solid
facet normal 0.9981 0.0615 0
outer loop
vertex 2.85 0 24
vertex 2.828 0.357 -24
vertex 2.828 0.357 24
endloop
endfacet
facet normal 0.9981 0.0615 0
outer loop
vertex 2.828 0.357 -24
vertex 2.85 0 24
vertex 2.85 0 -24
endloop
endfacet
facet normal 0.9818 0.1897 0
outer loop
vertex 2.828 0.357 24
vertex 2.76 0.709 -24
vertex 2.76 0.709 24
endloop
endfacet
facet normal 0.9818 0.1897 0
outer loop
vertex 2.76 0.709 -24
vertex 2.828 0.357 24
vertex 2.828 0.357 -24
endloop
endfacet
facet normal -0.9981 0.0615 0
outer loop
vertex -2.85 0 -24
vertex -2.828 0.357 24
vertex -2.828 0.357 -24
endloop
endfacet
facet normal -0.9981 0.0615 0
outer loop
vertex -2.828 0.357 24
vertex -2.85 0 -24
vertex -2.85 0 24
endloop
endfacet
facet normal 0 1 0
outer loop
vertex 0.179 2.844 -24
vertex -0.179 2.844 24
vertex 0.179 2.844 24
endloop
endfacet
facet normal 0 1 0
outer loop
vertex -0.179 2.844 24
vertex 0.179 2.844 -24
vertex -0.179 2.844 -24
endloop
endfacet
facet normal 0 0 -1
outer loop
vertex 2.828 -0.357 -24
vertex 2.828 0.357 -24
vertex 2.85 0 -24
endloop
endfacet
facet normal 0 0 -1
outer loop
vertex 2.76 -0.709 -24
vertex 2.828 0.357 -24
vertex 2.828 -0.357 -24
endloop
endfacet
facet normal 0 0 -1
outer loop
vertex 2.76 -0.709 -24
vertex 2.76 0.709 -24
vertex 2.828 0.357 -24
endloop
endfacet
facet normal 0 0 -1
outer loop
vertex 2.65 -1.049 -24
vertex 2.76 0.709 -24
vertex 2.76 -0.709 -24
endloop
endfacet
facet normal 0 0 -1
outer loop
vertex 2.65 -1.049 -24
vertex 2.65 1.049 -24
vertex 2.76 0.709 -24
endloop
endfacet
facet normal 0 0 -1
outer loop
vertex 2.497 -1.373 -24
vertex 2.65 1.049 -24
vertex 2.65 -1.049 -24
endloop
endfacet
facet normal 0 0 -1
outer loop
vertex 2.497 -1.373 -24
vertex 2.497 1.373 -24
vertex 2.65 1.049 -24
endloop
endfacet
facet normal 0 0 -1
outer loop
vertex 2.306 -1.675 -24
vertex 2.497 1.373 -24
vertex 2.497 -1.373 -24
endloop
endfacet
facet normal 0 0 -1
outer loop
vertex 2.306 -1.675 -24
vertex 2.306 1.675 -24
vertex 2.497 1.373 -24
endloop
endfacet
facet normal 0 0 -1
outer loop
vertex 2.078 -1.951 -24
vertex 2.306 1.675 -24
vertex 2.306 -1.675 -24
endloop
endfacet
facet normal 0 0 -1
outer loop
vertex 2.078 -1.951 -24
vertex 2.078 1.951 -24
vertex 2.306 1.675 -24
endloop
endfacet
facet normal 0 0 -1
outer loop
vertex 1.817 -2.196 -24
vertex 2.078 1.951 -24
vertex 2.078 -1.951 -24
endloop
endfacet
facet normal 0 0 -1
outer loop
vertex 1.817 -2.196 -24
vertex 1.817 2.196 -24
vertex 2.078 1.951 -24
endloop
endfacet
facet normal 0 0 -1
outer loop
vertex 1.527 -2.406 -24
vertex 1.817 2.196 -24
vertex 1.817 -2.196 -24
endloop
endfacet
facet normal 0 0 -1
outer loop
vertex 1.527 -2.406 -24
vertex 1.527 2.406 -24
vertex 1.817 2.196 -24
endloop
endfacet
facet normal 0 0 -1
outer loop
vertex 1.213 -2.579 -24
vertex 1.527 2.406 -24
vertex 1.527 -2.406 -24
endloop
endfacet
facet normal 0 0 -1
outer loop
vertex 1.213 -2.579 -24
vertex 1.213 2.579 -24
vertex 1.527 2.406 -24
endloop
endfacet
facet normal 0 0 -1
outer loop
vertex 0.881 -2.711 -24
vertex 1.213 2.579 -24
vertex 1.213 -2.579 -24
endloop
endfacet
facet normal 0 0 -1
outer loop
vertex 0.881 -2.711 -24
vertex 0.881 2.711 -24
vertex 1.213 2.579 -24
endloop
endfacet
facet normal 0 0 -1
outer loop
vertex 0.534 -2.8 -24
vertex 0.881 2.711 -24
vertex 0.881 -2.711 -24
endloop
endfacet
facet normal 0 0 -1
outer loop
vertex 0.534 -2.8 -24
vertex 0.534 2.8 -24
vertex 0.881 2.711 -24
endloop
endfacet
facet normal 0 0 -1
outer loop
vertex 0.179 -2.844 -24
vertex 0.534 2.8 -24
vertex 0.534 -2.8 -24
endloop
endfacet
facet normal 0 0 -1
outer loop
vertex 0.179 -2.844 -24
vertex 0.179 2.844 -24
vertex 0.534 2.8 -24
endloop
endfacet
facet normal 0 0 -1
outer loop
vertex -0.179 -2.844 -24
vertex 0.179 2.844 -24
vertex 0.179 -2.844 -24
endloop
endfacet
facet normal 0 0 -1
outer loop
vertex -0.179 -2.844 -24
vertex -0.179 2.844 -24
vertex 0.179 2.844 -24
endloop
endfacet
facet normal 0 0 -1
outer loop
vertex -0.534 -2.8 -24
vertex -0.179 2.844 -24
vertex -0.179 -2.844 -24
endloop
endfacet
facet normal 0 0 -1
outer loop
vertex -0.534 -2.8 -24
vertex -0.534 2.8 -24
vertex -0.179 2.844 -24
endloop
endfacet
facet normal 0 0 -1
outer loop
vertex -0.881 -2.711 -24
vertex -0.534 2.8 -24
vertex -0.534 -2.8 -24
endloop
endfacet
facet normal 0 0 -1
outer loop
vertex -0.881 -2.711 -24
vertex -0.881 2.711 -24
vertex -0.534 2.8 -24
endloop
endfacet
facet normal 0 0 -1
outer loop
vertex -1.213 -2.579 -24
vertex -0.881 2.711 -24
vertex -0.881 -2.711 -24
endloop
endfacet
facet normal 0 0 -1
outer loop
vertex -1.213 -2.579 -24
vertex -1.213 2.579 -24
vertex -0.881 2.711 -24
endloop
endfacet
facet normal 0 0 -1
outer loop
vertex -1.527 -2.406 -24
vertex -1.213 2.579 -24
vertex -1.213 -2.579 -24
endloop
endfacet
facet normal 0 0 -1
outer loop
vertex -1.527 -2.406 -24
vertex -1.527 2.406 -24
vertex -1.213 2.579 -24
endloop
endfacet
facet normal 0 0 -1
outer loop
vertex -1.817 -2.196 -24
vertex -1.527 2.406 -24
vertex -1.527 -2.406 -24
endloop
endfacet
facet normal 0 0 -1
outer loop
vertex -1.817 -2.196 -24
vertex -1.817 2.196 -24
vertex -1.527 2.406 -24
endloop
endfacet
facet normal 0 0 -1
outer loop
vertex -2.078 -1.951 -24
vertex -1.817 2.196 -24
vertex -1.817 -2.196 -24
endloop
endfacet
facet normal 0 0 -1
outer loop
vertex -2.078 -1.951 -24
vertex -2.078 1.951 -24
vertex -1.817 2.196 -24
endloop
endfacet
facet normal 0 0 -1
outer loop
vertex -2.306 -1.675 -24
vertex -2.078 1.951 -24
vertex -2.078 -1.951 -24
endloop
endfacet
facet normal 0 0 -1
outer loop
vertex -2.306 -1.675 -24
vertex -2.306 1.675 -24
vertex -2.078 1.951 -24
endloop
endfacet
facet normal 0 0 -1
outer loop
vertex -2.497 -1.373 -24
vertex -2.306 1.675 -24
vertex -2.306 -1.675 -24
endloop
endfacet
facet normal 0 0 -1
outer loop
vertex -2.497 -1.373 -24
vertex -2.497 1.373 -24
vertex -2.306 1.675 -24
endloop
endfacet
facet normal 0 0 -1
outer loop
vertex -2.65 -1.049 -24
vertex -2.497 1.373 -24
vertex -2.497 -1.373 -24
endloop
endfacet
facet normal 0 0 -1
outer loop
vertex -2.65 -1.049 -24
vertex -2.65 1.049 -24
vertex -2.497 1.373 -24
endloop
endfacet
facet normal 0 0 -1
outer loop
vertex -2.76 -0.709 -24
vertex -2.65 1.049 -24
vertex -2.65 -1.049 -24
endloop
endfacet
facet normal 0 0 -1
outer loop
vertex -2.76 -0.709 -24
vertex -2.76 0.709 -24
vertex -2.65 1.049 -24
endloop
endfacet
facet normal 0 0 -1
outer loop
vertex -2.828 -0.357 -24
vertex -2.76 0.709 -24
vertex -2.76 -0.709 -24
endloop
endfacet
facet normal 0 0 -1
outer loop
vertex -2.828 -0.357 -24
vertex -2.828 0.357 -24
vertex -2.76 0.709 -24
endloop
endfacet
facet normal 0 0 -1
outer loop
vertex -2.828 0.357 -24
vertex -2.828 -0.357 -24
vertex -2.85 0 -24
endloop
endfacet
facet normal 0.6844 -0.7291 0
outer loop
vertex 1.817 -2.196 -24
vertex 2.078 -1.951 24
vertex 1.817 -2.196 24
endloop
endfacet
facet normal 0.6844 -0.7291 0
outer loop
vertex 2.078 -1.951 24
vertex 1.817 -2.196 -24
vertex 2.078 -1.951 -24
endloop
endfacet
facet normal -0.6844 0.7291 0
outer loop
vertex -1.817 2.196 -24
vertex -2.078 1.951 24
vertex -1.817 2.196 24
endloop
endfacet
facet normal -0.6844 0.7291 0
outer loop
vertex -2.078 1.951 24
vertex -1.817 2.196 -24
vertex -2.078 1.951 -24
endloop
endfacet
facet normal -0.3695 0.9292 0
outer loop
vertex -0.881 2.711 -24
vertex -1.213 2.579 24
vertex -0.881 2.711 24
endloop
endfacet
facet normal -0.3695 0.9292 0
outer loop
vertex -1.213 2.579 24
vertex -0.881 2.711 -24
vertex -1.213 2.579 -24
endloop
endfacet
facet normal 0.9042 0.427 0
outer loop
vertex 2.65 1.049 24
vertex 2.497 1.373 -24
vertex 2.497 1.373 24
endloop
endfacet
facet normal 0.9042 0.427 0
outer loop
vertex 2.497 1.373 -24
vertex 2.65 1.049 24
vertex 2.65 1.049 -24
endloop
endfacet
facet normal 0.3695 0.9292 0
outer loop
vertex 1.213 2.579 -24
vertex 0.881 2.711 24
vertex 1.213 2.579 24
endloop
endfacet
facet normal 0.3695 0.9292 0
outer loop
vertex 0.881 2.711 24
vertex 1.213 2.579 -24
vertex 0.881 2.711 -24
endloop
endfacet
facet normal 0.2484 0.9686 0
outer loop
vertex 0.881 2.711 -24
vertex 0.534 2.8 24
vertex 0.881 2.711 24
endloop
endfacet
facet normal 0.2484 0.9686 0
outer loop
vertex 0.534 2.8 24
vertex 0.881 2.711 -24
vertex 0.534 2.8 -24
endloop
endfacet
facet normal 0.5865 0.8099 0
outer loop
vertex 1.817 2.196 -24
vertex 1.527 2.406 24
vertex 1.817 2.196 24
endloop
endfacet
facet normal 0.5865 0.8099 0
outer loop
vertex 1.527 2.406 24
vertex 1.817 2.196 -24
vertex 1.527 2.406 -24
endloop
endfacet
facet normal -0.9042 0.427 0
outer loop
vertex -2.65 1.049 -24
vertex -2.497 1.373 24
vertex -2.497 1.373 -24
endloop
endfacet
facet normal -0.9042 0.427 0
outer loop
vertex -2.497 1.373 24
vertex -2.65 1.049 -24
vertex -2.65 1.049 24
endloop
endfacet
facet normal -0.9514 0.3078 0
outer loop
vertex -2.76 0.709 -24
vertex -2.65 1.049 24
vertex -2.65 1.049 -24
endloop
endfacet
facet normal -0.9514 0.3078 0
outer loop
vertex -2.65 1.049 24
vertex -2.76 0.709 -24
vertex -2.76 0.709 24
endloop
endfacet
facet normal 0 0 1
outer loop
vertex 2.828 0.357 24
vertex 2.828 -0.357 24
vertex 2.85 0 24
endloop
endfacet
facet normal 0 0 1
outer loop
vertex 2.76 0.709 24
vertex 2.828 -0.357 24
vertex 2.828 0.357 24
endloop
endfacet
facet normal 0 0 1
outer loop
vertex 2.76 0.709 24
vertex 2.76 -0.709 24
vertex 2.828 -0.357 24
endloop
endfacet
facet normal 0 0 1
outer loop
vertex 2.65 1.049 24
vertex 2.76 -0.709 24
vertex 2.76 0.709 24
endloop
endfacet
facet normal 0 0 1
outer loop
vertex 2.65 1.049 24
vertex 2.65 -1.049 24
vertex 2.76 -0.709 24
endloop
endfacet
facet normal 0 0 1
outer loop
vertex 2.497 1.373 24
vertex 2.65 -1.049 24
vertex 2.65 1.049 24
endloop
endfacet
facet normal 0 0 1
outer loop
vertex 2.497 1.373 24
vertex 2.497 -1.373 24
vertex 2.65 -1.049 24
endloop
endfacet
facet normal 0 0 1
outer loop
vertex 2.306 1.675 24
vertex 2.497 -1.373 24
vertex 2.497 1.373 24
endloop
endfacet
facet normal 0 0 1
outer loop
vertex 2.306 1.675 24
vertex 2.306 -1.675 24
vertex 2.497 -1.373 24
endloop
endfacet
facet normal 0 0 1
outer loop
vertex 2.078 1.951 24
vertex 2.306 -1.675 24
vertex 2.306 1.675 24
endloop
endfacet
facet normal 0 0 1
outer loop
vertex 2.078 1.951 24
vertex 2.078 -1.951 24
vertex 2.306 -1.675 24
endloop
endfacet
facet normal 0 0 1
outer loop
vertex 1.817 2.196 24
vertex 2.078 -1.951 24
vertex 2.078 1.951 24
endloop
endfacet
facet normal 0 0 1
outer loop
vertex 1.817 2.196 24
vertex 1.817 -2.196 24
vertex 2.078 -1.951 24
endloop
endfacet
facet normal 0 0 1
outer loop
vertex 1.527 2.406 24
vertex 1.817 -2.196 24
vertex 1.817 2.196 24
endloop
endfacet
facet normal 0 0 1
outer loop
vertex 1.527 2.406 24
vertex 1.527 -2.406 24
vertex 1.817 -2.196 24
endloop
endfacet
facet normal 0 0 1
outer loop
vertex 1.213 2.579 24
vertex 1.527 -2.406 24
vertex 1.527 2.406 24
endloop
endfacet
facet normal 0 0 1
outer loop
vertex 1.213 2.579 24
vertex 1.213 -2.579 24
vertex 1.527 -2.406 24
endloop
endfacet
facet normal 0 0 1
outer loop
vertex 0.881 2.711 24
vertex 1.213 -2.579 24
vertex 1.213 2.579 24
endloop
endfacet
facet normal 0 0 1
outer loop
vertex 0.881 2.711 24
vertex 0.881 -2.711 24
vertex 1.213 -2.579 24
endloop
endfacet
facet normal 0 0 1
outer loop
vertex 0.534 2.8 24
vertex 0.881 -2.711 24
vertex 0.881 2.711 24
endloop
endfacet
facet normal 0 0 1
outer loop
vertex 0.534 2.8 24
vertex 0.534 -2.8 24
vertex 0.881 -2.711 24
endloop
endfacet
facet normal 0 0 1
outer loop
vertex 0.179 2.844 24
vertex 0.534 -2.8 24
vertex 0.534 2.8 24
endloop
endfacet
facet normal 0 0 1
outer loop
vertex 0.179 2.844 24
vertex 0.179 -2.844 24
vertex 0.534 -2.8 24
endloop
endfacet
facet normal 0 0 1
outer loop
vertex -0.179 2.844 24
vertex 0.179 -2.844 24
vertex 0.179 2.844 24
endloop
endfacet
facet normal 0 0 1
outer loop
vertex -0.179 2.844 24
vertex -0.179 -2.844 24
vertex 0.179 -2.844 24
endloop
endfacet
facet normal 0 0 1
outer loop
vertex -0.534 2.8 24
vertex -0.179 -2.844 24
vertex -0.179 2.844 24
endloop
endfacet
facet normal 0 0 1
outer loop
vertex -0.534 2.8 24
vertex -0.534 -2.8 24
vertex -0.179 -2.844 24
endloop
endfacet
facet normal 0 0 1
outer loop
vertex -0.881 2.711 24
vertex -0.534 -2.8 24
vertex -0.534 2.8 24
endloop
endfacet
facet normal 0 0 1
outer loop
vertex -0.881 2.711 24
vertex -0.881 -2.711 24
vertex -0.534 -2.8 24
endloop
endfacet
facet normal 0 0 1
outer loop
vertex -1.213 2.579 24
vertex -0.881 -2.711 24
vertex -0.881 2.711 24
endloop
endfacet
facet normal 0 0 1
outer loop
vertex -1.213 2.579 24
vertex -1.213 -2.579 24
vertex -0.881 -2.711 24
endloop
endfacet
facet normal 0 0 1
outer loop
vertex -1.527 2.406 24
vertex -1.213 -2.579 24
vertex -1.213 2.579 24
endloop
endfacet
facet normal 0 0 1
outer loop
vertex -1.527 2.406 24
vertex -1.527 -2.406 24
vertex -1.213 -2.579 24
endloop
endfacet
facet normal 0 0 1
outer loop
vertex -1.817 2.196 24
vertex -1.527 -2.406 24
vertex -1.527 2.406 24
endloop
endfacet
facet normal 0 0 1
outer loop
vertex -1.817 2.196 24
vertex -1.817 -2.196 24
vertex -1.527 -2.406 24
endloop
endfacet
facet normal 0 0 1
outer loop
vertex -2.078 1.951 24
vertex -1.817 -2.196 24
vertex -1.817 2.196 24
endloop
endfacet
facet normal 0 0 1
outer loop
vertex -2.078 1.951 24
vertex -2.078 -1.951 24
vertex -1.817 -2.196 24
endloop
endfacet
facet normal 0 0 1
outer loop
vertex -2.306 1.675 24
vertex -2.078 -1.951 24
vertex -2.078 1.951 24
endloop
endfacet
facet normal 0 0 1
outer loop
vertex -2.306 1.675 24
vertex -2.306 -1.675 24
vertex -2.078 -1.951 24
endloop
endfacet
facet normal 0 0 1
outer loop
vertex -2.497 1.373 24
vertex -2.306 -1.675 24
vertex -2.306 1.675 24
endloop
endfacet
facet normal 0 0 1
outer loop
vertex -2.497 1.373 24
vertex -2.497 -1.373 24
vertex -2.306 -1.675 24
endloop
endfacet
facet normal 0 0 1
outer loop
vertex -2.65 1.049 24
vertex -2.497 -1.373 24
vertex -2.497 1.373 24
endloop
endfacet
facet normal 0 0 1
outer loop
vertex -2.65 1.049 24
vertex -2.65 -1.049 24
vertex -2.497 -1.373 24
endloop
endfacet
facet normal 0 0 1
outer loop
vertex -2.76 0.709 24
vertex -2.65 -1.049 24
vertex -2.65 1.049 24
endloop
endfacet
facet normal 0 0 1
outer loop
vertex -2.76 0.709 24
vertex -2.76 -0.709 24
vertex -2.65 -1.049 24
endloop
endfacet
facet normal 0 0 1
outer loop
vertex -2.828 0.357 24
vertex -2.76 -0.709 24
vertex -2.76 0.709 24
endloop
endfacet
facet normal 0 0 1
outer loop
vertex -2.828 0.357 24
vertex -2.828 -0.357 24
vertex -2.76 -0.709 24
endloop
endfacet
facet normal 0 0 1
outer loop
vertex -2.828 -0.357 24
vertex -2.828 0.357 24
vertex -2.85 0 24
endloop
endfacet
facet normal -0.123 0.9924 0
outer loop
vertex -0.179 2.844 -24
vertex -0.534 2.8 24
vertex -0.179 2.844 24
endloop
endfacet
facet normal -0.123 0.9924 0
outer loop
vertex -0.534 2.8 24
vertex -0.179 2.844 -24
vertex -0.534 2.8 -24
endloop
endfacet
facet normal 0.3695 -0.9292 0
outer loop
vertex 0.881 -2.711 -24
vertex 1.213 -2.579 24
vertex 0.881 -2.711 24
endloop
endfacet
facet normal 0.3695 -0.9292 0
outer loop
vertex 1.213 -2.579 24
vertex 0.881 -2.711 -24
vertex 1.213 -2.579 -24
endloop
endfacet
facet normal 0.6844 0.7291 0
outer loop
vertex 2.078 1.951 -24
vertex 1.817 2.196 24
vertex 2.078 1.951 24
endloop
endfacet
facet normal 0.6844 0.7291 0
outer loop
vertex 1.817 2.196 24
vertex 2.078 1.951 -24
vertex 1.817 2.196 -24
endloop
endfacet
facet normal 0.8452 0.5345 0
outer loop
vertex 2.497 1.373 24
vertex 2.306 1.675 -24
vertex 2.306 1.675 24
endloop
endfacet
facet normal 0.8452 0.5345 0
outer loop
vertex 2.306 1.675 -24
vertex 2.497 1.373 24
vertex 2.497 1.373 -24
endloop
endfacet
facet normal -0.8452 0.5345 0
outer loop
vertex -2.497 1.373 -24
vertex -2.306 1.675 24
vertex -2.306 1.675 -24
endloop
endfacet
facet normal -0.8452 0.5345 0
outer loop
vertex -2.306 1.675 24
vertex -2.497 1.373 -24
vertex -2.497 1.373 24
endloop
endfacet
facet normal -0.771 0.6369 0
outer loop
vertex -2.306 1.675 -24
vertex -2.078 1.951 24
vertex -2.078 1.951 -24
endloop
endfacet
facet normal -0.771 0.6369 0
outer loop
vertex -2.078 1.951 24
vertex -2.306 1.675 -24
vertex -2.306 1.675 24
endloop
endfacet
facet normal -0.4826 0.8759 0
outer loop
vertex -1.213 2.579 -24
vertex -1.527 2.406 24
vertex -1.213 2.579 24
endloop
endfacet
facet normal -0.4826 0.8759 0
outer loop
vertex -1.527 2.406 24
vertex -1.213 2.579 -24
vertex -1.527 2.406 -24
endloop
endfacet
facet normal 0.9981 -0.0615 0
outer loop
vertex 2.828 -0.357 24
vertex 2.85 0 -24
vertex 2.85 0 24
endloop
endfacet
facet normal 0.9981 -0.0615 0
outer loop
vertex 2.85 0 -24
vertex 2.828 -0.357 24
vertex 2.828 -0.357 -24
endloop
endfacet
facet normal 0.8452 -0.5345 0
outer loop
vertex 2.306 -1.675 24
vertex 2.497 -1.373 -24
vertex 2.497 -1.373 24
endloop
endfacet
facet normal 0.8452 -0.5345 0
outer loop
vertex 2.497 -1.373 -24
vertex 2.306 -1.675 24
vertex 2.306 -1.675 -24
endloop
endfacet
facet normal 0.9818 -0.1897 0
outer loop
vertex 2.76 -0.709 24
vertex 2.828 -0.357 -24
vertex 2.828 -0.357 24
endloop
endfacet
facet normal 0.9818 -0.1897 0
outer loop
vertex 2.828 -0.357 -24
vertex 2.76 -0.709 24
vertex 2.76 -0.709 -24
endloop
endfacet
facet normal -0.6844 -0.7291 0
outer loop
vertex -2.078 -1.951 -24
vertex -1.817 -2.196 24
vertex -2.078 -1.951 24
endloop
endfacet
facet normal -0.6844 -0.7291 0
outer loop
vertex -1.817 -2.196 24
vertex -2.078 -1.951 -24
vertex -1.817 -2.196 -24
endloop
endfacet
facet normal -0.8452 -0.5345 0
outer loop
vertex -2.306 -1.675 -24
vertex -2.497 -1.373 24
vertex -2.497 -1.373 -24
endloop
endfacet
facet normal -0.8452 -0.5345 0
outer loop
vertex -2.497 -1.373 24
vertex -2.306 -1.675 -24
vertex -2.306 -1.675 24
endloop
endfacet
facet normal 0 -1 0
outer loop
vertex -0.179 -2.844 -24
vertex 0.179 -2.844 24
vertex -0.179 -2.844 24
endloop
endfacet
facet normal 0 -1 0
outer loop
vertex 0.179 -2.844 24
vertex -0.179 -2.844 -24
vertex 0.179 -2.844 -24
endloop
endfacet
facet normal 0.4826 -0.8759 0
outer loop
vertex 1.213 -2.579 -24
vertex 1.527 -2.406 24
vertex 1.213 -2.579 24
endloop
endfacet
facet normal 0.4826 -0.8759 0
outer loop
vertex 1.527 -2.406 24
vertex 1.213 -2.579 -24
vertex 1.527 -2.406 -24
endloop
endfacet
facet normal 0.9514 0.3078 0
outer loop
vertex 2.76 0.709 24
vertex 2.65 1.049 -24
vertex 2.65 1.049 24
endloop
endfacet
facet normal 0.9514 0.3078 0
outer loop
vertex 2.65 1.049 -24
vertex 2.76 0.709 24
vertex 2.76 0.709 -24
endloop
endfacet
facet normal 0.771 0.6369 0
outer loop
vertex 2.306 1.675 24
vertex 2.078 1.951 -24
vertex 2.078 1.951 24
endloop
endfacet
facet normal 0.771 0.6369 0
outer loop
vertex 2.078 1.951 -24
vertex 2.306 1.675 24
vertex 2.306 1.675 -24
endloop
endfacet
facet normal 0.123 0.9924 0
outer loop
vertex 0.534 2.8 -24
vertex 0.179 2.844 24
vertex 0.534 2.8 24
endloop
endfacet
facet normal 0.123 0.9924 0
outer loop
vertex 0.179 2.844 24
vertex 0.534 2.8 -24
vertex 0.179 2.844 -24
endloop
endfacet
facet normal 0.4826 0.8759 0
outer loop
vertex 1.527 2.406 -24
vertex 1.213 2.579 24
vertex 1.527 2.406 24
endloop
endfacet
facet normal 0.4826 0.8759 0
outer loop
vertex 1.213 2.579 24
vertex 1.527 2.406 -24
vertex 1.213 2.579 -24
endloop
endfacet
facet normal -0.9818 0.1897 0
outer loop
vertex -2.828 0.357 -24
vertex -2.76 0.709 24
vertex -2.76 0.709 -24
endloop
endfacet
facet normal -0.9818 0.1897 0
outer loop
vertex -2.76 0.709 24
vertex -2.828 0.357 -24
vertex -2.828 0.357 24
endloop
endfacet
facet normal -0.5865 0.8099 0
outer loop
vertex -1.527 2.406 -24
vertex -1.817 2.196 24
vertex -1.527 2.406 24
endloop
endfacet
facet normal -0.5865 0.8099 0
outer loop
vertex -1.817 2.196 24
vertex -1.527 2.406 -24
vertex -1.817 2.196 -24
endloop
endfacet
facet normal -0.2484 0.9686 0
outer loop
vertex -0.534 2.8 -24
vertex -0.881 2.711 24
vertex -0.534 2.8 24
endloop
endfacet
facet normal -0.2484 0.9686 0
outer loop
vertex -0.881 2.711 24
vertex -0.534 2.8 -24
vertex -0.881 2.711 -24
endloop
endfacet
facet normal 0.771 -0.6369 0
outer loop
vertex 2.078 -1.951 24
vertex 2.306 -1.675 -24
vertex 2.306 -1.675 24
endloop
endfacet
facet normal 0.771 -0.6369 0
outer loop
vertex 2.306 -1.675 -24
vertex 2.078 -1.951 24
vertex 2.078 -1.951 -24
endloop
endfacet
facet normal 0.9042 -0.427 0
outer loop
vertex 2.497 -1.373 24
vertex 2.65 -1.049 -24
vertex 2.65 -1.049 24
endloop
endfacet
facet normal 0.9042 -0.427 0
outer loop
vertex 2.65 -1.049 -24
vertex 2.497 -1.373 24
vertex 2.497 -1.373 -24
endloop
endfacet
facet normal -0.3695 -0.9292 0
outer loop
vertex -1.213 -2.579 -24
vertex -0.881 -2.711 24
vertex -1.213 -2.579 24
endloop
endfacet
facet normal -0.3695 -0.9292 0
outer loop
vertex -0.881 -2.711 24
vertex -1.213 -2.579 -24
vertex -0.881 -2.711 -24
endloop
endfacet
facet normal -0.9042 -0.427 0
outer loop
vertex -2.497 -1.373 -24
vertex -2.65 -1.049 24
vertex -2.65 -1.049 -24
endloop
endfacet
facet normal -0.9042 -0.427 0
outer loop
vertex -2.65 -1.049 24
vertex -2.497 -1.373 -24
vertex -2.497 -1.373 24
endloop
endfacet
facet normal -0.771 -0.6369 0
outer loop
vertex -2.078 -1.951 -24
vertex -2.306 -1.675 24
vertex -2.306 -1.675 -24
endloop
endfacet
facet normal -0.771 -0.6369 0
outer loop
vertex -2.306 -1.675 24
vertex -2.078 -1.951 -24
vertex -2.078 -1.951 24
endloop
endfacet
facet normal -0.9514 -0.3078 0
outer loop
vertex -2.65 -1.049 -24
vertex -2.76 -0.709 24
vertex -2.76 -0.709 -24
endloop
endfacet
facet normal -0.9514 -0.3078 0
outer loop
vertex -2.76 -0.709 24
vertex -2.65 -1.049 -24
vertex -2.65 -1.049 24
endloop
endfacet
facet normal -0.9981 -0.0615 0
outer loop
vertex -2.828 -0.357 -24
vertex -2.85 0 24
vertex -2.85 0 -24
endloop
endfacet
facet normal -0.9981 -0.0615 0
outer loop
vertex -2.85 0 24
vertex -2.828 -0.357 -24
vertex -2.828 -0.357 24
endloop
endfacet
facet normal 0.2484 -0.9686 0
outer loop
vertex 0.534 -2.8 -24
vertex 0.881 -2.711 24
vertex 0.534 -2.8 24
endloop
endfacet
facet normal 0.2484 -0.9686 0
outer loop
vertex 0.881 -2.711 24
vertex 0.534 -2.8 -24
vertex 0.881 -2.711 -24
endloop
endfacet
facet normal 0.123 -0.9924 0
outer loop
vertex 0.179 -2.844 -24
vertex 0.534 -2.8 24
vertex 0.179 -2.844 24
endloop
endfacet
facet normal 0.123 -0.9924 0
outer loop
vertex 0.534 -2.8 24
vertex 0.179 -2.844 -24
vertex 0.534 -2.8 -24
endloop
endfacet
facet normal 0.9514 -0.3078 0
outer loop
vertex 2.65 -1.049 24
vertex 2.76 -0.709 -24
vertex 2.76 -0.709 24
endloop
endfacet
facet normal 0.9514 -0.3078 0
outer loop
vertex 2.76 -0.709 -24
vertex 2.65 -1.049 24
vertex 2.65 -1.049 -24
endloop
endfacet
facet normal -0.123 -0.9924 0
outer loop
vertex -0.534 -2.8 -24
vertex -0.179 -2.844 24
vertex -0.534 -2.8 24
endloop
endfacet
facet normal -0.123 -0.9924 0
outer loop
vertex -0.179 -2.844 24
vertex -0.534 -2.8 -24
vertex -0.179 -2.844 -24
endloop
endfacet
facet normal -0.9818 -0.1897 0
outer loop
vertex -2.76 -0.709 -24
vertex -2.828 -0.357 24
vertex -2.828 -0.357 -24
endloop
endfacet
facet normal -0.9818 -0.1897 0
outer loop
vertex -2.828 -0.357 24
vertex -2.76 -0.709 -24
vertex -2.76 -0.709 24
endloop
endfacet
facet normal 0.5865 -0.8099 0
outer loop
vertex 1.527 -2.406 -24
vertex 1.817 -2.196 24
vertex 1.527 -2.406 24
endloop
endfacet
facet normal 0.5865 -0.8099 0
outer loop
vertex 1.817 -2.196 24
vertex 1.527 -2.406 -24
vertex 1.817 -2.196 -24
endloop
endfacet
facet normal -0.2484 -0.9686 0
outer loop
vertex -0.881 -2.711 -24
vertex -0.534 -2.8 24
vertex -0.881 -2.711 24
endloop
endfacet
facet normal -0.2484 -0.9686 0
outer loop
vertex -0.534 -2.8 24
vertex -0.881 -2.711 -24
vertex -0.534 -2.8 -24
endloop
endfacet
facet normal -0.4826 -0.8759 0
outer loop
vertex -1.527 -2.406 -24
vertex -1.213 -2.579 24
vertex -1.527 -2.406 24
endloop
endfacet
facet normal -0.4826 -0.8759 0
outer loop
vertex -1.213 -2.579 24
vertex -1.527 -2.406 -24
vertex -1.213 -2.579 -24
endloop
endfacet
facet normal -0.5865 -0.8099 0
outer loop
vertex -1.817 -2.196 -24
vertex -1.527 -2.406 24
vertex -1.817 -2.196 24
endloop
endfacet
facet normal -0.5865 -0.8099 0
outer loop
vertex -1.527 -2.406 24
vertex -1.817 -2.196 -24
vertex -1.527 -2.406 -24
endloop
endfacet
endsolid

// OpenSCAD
$fn = 50;


difference() {
	union() {
		translate(v = [0, 0, -24.0000000000]) {
			cylinder(h = 48, r = 2.8500000000);
		}
	}
	union() {
		translate(v = [0, 0, -100.0000000000]) {
			cylinder(h = 200, r = 0);
		}
	}
}
